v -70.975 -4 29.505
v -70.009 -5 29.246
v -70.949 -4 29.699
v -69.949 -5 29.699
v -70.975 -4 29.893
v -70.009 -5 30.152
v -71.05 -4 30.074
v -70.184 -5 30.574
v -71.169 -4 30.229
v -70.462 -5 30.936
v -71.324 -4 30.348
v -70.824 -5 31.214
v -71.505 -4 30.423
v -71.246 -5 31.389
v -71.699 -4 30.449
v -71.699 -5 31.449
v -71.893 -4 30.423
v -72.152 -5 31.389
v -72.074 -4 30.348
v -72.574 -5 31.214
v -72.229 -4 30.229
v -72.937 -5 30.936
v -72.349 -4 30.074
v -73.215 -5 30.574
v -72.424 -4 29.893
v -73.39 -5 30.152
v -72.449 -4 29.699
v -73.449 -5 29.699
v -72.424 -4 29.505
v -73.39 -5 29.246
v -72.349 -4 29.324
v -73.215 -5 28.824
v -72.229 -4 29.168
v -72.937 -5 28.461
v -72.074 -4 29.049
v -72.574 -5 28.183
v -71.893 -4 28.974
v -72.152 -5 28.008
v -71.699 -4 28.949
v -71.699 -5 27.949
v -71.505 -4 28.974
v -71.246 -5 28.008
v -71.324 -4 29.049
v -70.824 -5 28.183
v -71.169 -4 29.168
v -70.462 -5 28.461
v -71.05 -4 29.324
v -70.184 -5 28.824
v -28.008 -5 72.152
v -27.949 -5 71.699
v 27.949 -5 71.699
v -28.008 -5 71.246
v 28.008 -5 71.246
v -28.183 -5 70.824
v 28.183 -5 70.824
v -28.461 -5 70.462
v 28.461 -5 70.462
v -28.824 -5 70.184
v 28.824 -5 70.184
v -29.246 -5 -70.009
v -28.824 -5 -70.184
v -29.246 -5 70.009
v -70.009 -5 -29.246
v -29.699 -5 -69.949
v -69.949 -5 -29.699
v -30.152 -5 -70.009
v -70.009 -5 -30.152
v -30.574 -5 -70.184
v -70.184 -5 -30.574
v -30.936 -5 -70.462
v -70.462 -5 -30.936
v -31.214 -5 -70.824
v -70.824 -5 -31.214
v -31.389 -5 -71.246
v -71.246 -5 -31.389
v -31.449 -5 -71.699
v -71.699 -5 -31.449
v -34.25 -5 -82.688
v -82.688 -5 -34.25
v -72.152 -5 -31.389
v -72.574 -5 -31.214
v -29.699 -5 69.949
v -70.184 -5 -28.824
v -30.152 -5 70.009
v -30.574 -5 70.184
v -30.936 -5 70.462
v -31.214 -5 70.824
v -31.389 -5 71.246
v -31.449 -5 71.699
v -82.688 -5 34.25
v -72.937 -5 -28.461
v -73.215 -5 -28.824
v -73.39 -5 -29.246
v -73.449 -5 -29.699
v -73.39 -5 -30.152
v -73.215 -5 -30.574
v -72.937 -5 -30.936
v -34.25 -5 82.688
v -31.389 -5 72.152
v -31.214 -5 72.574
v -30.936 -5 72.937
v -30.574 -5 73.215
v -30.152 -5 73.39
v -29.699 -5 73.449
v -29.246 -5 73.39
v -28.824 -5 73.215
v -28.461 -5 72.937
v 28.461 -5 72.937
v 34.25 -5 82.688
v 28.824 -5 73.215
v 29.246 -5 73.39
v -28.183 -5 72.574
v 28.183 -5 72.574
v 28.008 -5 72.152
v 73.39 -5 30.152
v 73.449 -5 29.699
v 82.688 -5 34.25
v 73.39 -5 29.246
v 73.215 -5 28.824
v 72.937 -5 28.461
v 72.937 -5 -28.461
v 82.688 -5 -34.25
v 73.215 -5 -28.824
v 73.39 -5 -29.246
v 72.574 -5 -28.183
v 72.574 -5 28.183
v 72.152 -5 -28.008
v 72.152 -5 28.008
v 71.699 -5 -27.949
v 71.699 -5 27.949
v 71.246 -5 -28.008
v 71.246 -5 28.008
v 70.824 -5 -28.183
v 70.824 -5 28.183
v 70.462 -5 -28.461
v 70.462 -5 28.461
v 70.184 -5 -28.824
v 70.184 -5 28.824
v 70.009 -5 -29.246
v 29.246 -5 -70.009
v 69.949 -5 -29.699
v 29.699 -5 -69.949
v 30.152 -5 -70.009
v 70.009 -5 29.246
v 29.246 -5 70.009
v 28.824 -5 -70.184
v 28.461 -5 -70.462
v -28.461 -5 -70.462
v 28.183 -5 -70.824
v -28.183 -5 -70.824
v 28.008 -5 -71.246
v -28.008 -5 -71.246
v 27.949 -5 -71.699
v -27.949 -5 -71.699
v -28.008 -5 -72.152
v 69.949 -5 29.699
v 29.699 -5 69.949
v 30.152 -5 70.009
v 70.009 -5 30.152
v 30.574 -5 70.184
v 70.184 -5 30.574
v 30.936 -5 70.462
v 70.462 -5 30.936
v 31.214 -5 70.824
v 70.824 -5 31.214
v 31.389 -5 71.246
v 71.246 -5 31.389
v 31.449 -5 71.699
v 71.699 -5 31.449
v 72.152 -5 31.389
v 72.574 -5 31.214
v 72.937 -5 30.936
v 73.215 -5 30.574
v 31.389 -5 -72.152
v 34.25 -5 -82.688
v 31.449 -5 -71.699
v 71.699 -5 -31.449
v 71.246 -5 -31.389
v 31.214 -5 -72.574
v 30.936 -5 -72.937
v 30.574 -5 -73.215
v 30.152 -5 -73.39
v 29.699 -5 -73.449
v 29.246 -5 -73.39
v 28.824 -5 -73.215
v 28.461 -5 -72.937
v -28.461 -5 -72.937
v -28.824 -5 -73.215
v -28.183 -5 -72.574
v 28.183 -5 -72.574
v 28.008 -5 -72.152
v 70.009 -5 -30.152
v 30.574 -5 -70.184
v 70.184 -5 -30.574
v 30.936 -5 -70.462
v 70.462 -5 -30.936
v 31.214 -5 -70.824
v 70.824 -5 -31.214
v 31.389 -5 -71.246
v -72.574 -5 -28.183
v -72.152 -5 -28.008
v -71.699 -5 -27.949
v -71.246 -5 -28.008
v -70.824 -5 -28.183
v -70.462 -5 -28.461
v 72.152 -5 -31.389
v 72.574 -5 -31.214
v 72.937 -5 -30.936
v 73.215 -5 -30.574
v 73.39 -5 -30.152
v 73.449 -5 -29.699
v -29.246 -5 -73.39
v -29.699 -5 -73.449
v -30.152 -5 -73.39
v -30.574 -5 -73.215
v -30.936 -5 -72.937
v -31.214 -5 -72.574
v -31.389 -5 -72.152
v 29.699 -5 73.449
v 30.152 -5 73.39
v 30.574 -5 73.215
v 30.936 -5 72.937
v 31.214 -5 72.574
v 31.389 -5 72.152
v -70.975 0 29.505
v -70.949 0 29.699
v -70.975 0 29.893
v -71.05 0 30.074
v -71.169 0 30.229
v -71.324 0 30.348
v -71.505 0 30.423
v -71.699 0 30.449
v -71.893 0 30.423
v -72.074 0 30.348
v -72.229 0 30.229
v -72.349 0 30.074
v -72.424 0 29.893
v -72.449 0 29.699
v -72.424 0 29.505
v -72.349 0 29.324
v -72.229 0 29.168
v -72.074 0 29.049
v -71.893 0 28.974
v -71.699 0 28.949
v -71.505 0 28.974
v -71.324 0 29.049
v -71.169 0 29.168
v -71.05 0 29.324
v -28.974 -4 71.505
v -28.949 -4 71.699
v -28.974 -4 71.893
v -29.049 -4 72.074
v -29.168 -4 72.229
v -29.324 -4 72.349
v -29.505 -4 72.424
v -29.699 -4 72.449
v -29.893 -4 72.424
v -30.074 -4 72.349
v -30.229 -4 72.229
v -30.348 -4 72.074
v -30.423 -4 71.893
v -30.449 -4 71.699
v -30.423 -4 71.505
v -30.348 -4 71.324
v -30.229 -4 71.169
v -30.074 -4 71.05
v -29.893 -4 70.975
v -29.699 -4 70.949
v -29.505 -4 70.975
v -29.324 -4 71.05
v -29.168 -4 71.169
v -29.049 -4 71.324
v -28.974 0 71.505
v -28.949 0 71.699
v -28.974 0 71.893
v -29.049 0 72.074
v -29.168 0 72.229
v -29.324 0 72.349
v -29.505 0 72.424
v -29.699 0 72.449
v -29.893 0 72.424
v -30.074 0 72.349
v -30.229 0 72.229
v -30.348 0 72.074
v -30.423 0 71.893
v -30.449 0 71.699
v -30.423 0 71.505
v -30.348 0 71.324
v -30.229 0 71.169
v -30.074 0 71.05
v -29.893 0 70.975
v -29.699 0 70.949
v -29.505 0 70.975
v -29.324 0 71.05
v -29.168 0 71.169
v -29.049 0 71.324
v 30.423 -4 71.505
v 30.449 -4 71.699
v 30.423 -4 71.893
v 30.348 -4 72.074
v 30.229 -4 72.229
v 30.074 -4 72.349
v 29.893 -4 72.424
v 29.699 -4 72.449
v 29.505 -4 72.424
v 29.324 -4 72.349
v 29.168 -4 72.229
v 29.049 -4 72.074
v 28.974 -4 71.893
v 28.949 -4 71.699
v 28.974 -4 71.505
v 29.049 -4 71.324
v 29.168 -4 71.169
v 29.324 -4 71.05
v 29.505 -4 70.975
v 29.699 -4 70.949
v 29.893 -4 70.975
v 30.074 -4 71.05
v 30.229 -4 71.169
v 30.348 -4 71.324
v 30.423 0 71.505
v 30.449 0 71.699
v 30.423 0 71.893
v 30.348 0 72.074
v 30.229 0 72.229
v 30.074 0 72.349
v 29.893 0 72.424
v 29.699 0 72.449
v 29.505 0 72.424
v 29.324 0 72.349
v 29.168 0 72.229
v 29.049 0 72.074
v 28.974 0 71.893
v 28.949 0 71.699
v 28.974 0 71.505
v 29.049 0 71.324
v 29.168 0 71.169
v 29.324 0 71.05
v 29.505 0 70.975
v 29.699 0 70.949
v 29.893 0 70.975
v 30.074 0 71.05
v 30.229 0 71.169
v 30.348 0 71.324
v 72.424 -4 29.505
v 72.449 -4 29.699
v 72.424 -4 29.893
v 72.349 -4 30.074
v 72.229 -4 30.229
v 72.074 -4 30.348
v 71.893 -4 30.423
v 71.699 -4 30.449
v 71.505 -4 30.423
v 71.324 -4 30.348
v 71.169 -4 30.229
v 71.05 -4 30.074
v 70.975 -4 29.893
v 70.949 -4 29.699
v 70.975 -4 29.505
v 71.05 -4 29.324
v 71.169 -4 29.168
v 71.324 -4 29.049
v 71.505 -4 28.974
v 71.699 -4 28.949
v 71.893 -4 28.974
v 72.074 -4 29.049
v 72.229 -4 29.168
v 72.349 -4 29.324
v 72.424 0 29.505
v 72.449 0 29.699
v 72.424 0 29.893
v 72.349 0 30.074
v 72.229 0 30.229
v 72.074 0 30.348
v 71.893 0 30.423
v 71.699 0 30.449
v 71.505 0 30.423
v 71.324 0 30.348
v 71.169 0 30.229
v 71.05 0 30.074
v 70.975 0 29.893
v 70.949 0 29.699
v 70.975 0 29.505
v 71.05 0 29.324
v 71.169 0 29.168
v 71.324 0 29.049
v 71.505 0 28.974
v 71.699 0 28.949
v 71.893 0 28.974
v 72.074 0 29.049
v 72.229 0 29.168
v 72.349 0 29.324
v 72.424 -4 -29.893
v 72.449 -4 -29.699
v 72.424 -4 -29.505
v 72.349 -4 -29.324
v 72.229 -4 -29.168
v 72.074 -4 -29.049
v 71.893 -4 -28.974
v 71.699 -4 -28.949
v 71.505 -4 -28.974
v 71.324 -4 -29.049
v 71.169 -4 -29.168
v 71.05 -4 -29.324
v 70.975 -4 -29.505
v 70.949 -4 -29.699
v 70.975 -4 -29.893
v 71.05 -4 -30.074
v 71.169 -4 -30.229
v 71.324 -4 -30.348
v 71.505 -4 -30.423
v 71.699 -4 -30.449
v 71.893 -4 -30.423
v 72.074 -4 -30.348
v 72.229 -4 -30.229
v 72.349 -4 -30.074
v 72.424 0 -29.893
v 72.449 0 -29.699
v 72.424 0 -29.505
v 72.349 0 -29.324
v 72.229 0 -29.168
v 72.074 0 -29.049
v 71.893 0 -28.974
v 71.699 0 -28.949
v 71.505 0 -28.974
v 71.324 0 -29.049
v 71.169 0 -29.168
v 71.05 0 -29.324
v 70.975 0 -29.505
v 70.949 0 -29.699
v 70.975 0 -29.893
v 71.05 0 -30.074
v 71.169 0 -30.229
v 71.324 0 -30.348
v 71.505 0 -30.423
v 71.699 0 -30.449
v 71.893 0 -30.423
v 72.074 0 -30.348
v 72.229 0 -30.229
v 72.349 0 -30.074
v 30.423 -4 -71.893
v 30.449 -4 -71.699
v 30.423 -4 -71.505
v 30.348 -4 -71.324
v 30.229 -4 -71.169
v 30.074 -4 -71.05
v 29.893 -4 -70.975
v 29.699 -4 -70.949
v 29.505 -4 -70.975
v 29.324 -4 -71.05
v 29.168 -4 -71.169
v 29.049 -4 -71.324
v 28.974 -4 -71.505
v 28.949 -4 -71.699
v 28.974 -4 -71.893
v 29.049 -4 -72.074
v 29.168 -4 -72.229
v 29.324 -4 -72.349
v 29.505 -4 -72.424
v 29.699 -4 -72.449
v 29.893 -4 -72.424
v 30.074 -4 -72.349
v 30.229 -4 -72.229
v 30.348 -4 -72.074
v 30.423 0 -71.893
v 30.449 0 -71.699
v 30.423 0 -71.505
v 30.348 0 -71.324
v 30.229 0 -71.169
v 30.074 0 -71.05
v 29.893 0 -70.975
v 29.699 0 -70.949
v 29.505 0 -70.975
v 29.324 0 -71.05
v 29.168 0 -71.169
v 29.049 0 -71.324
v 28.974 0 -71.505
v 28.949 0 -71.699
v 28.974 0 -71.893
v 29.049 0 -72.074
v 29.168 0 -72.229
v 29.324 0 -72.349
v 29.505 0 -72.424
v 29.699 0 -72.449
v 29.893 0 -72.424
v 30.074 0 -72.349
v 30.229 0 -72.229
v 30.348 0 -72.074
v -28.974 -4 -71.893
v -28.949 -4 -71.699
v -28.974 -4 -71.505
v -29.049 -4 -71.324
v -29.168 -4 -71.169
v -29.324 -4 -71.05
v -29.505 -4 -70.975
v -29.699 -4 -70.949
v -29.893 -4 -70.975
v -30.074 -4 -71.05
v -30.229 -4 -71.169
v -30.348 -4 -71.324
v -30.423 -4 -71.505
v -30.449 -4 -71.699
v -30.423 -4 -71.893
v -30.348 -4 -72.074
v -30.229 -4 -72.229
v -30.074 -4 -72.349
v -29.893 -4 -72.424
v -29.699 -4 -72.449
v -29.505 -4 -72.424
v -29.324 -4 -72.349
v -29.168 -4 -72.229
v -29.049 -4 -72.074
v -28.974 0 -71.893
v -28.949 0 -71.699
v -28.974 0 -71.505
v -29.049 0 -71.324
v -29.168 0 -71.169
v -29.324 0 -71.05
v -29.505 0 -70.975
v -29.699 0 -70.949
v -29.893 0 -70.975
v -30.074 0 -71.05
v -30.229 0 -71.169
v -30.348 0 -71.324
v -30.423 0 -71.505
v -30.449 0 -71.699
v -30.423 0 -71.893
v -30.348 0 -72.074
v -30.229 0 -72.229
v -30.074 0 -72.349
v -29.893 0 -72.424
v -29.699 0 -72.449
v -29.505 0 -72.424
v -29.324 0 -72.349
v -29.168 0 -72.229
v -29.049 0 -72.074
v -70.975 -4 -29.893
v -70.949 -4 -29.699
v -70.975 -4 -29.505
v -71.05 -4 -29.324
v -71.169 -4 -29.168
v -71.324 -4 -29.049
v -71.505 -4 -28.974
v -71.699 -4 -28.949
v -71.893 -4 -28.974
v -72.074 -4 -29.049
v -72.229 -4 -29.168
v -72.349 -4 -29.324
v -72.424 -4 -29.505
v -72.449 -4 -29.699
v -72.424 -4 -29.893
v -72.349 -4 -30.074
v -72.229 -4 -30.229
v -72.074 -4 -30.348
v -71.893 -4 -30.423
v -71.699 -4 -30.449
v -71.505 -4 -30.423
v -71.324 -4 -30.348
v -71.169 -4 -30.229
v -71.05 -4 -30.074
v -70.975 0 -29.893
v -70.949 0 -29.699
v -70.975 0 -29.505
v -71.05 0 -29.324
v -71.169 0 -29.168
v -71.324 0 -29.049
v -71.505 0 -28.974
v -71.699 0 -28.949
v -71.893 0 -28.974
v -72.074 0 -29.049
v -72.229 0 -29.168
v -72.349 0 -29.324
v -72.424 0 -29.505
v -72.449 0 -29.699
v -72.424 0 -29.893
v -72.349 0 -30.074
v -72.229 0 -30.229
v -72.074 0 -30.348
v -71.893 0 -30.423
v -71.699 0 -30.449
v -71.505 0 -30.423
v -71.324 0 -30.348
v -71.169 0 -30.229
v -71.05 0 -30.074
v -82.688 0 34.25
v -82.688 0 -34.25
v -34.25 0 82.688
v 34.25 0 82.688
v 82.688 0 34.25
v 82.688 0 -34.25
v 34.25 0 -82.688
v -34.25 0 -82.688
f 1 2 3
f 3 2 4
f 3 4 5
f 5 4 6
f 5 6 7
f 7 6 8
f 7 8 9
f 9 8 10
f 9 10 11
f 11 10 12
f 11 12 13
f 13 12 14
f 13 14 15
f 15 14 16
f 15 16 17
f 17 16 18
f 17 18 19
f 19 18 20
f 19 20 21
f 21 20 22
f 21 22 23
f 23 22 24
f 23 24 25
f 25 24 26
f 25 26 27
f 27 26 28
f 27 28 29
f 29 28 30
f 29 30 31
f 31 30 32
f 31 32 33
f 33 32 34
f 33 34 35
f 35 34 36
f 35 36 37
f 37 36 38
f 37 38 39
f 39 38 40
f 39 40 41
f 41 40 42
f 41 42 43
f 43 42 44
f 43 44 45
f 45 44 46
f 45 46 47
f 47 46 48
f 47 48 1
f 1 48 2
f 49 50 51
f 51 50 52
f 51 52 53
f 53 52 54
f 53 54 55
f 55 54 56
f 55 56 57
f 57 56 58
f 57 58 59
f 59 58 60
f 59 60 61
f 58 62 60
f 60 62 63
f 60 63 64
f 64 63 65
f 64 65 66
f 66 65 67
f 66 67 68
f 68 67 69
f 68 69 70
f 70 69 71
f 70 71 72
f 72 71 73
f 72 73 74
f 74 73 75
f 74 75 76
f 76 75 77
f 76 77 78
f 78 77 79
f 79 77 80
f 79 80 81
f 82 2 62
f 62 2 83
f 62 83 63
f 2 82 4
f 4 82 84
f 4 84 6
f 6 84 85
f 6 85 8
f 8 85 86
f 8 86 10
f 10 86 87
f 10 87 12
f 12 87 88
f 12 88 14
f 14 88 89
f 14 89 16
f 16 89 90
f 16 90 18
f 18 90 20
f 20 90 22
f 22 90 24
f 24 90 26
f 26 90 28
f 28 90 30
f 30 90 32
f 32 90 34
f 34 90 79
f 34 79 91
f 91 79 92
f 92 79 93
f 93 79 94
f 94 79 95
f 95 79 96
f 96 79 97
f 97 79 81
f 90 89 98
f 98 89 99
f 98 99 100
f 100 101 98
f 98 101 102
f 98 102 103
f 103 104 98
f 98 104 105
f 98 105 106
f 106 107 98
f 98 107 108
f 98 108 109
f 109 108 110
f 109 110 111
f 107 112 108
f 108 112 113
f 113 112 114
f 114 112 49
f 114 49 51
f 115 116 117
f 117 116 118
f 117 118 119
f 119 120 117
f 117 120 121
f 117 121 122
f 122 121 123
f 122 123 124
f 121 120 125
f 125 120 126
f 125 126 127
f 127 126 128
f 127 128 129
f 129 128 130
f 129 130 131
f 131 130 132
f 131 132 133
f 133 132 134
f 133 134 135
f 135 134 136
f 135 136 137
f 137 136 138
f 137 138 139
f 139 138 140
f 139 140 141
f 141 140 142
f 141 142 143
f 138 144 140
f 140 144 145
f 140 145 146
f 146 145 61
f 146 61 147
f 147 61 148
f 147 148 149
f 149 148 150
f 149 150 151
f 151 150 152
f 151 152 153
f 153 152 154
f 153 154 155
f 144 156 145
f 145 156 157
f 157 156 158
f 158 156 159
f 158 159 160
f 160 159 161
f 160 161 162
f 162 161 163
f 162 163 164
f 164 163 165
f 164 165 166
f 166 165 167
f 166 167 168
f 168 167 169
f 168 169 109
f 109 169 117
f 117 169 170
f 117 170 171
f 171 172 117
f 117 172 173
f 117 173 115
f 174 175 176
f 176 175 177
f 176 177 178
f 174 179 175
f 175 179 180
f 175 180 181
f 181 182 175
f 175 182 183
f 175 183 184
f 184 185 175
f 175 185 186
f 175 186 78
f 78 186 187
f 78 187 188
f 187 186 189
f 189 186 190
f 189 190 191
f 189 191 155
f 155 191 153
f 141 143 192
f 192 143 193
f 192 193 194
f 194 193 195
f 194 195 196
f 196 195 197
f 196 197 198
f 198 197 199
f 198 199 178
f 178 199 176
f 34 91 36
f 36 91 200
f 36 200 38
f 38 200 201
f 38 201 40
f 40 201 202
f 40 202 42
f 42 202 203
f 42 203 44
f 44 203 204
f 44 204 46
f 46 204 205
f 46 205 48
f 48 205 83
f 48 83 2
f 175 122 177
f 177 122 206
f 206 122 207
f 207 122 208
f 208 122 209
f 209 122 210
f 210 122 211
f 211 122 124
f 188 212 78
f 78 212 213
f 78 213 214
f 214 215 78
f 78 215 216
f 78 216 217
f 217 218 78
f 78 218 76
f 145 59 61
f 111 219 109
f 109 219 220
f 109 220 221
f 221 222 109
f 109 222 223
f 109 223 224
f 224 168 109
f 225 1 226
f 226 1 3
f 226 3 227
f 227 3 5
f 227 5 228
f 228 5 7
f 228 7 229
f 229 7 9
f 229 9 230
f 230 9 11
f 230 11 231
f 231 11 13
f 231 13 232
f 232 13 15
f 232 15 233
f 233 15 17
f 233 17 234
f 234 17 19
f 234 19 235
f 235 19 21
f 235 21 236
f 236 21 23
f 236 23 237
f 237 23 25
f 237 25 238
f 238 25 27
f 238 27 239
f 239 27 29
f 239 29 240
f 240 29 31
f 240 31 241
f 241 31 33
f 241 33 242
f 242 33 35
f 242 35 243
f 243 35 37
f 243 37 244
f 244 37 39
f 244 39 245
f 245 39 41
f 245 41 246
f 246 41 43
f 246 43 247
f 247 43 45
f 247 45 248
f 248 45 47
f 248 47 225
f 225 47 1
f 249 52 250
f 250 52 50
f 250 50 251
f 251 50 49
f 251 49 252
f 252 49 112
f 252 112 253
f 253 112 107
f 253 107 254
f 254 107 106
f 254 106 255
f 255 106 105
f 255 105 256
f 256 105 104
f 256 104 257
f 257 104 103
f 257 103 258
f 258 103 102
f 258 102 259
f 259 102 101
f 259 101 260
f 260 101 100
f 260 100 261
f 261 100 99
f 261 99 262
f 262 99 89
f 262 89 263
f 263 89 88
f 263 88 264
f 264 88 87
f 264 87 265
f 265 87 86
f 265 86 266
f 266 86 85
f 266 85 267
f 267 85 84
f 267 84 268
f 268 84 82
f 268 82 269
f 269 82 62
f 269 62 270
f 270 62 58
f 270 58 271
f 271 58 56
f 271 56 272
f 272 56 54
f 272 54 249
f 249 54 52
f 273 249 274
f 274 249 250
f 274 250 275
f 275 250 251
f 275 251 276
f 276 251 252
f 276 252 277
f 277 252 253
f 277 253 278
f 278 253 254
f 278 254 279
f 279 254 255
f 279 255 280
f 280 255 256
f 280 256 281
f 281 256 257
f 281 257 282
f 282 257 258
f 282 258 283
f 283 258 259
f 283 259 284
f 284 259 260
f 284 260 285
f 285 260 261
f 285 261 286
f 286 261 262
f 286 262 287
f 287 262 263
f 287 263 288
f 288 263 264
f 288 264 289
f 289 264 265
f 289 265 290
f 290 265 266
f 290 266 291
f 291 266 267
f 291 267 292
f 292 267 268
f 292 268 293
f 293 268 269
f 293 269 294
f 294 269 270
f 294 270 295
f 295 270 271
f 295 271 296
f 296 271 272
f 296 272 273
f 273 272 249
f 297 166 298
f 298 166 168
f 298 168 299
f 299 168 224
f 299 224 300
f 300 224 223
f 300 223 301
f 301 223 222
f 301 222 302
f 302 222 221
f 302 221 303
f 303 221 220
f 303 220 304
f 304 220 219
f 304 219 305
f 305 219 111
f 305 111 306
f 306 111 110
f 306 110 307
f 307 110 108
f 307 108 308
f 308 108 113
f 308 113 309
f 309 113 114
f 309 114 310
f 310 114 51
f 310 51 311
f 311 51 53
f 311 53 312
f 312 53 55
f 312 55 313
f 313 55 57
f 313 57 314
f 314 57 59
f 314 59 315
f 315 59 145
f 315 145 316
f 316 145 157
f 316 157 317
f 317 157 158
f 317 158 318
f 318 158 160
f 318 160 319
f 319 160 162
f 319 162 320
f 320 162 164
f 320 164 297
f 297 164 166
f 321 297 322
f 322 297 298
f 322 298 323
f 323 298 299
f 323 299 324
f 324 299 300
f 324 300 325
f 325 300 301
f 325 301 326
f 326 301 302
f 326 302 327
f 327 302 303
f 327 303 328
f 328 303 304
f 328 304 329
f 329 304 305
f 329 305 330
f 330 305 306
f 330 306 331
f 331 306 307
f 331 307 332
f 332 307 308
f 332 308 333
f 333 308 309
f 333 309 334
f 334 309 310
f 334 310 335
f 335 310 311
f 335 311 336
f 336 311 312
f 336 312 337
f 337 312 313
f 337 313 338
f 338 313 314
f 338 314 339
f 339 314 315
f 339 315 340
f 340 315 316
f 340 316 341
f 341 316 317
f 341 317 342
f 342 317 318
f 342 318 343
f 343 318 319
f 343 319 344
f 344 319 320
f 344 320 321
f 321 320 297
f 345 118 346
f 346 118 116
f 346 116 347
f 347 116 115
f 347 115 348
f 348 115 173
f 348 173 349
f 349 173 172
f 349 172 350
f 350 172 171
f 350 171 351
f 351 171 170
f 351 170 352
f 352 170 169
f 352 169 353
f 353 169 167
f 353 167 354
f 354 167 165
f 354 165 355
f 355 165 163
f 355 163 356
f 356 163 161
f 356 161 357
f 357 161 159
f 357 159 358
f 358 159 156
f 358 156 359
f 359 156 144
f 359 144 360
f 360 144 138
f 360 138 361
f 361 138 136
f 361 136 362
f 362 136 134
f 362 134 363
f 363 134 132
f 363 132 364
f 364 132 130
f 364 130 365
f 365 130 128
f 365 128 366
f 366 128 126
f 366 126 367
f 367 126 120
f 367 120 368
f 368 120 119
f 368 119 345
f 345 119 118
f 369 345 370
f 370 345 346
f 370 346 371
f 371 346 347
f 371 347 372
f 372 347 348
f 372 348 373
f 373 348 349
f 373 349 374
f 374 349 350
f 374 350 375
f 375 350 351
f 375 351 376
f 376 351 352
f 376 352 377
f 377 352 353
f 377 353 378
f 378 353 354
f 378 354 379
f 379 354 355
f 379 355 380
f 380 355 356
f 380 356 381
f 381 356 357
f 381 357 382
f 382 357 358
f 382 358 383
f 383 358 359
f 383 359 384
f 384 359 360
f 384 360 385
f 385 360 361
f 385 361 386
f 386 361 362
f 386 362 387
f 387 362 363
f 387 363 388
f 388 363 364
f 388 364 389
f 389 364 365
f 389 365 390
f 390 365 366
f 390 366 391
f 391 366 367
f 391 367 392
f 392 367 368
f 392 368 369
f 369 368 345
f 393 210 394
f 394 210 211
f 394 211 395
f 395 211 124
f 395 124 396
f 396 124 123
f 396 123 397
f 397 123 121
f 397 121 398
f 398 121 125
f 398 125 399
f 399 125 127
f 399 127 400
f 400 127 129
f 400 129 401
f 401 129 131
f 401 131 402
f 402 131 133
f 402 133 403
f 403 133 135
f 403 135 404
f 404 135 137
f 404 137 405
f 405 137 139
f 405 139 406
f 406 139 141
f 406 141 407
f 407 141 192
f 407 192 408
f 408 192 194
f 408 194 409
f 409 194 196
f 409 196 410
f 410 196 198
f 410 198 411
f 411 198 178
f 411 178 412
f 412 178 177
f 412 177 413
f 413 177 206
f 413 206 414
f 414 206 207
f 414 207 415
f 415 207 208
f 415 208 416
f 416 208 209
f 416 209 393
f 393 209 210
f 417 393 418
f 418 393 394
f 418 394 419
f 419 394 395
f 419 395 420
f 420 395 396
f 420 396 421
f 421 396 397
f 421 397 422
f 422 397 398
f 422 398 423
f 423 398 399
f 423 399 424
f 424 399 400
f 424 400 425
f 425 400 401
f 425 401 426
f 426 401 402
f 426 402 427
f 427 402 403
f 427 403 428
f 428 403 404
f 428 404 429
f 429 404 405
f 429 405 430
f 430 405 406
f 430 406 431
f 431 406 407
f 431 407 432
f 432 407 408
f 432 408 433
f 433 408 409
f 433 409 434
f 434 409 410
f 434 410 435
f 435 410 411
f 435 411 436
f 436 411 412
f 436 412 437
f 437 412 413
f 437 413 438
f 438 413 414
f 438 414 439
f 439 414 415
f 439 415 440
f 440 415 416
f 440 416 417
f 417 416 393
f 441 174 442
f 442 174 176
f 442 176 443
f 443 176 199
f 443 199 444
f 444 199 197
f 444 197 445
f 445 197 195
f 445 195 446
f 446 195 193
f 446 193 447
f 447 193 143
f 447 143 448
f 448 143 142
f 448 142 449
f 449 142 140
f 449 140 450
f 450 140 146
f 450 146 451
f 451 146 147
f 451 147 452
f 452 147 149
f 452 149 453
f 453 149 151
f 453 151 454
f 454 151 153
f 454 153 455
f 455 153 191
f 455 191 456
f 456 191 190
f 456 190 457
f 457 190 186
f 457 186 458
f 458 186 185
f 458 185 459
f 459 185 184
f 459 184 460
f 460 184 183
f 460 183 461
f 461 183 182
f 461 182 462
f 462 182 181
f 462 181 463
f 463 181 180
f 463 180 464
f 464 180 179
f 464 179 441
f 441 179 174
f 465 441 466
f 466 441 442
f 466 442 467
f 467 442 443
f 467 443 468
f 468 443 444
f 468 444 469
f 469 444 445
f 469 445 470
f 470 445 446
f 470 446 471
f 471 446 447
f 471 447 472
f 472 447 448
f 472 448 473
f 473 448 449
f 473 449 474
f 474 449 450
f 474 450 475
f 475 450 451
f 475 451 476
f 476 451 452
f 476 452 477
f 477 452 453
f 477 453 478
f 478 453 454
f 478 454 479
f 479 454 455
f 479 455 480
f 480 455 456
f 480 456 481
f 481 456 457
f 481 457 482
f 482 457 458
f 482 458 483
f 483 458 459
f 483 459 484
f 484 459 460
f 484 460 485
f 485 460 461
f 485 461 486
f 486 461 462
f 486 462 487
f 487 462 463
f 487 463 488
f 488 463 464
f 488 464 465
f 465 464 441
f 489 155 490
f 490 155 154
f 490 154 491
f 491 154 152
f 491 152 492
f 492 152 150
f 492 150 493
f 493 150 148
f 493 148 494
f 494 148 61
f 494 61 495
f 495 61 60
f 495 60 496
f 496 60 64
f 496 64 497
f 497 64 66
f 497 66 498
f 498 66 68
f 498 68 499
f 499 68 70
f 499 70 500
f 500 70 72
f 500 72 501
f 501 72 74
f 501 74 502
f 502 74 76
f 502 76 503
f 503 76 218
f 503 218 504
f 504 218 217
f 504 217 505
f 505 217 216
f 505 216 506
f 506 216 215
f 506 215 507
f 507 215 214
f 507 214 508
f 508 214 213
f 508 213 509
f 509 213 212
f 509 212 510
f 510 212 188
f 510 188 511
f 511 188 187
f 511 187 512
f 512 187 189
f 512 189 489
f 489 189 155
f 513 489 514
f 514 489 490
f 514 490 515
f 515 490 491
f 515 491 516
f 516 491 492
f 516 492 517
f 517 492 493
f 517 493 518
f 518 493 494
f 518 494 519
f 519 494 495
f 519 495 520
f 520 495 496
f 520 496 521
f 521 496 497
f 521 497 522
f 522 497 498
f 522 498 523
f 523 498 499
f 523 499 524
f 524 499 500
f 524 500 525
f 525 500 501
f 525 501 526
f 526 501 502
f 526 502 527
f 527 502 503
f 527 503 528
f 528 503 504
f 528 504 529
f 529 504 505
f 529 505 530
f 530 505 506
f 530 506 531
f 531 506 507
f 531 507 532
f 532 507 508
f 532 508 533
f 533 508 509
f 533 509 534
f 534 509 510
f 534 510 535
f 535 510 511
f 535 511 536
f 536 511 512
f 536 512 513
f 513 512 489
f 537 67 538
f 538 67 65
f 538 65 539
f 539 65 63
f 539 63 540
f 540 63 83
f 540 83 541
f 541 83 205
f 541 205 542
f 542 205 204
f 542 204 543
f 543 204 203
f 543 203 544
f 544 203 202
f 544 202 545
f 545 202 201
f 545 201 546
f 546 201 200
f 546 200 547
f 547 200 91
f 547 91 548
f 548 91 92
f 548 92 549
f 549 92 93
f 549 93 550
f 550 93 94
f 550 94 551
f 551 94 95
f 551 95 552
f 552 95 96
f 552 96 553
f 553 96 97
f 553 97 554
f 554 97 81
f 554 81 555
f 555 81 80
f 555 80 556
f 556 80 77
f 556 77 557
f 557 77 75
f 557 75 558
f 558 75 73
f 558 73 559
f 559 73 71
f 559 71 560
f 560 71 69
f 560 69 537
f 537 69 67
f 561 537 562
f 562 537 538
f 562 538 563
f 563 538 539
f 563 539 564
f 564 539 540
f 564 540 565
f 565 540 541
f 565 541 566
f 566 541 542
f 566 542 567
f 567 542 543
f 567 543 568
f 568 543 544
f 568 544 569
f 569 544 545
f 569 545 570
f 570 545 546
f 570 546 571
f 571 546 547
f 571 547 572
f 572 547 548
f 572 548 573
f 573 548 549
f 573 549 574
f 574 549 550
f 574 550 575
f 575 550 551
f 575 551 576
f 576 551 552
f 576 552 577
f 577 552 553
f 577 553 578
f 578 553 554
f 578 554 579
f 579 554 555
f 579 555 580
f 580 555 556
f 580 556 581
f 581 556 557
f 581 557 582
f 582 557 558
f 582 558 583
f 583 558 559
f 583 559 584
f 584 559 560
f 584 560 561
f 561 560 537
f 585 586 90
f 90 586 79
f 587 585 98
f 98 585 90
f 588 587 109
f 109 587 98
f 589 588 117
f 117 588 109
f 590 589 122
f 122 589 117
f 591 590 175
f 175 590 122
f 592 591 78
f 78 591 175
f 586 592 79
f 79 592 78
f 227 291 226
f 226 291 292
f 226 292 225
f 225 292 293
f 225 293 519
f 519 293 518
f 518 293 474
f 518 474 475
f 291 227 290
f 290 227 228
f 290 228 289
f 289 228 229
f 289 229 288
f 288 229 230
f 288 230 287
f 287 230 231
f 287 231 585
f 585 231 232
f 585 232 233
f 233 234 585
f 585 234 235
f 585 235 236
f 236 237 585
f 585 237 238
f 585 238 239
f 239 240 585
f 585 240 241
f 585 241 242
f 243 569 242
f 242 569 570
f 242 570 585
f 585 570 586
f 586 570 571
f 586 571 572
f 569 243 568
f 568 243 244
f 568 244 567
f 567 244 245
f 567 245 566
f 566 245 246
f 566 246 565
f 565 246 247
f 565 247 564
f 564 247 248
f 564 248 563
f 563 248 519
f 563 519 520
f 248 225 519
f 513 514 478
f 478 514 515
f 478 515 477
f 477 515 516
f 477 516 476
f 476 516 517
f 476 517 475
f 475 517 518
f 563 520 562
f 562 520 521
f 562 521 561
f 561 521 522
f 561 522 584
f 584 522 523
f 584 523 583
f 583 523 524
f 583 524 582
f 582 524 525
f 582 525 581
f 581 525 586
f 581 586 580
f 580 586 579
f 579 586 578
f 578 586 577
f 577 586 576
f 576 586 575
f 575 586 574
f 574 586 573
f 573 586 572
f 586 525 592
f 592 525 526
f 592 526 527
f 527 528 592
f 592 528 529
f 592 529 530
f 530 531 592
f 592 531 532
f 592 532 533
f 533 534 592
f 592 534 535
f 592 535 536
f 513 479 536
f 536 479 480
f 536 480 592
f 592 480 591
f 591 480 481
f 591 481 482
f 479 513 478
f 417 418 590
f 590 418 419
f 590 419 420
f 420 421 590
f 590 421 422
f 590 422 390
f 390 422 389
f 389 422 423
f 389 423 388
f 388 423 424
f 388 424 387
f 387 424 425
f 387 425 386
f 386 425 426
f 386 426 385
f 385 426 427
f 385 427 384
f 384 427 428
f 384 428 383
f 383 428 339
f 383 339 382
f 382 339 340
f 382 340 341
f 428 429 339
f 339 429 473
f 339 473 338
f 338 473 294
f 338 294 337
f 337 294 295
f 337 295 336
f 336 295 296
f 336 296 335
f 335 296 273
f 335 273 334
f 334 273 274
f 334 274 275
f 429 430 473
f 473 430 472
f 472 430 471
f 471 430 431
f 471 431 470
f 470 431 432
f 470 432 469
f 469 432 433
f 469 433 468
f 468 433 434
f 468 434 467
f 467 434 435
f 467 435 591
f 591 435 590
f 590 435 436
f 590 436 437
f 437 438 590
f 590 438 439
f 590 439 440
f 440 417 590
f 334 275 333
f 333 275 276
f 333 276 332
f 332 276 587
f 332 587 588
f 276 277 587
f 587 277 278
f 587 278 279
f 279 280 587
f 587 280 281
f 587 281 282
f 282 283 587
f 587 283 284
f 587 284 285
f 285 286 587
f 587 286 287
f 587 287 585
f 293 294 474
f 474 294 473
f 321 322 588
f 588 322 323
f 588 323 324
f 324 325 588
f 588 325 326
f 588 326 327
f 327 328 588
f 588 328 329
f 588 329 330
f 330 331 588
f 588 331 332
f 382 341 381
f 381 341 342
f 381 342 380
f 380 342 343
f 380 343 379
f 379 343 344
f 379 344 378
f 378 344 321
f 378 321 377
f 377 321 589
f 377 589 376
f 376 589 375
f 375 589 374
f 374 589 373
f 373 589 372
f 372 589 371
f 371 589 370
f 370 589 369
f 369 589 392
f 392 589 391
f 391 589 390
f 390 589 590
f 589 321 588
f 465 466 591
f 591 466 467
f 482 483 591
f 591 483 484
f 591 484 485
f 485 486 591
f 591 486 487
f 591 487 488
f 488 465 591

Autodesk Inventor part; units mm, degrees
ref_plane "YZ Plane" through (0, 0, 0) normal (1, 0, 0) x (0, 1, 0)
ref_plane "XZ Plane" through (0, 0, 0) normal (0, 1, 0) x (-1, 0, 0)
ref_plane "XY Plane" through (0, 0, 0) normal (0, 0, 1) x (1, 0, 0)
ref_plane "Work Plane13" through (0, 0, 0) normal (0, -1, 0) x (1, 0, 0)
sketch "Sketch13" plane through (0, 0, 0) normal (0, -1, 0) x (1, 0, 0)
  circle A0 centre (-71.6992, -29.6988) radius 0.75 projected
  circle A1 centre (29.6988, -71.6992) radius 0.75 projected
  circle A2 centre (71.6992, 29.6988) radius 0.75 projected
  circle A3 centre (29.6988, 71.6992) radius 0.75 projected
  circle A4 centre (-29.6988, 71.6992) radius 0.75 projected
  circle A5 centre (71.6992, -29.6988) radius 0.75 projected
  circle A6 centre (-29.6988, -71.6992) radius 0.75 projected
  circle A7 centre (-71.6992, 29.6988) radius 0.75 projected
  line L0 (-82.6875, -34.2503) -> (-34.2503, -82.6875) projected
  line L1 (-34.2503, -82.6875) -> (34.2503, -82.6875) projected
  line L2 (34.2503, -82.6875) -> (82.6875, -34.2503) projected
  line L3 (82.6875, -34.2503) -> (82.6875, 34.2503) projected
  line L4 (82.6875, 34.2503) -> (34.2503, 82.6875) projected
  line L5 (34.2503, 82.6875) -> (-34.2503, 82.6875) projected
  line L6 (-34.2503, 82.6875) -> (-82.6875, 34.2503) projected
  line L7 (-82.6875, 34.2503) -> (-82.6875, -34.2503) projected
  arc A8 (-33.3536, 70.0737) -> (-25.965, 73.1342) centre (-29.6988, 71.6992) ccw projected
  arc A9 (25.965, 73.1342) -> (-25.965, 73.1342) centre (0, 0) ccw projected
  arc A10 (25.965, 73.1342) -> (33.3536, 70.0737) centre (29.6988, 71.6992) ccw projected
  arc A11 (70.0737, 33.3536) -> (33.3536, 70.0737) centre (0, 0) ccw projected
  arc A12 (70.0737, 33.3536) -> (73.1342, 25.965) centre (71.6992, 29.6988) ccw projected
  arc A13 (73.1342, -25.965) -> (73.1342, 25.965) centre (0, 0) ccw projected
  arc A14 (73.1342, -25.965) -> (70.0737, -33.3536) centre (71.6992, -29.6988) ccw projected
  arc A15 (33.3536, -70.0737) -> (70.0737, -33.3536) centre (0, 0) ccw projected
  arc A16 (33.3536, -70.0737) -> (25.965, -73.1342) centre (29.6988, -71.6992) ccw projected
  arc A17 (-25.965, -73.1342) -> (25.965, -73.1342) centre (0, 0) ccw projected
  arc A18 (-25.965, -73.1342) -> (-33.3536, -70.0737) centre (-29.6988, -71.6992) ccw projected
  arc A19 (-70.0737, -33.3536) -> (-33.3536, -70.0737) centre (0, 0) ccw projected
  arc A20 (-70.0737, -33.3536) -> (-73.1342, -25.965) centre (-71.6992, -29.6988) ccw projected
  arc A21 (-73.1342, 25.965) -> (-73.1342, -25.965) centre (0, 0) ccw projected
  arc A22 (-73.1342, 25.965) -> (-70.0737, 33.3536) centre (-71.6992, 29.6988) ccw projected
  arc A23 (-33.3536, 70.0737) -> (-70.0737, 33.3536) centre (0, 0) ccw projected
extrude "Extrusion11" add sketch "Sketch13" along normal blind 5 contours L7 L6 L5 L4 L3 L2 L1 L0 | A8 A9 A10 A11 A12 A13 A14 A15 A16 A17 A18 A19 A20 A21 A22 A23
chamfer "Chamfer2" distance 1 angle 45 8 edges at (-72.4492, -5, -29.6988) (-30.4488, -5, -71.6992) (28.9488, -5, -71.6992) (70.9492, -5, -29.6988) (70.9492, -5, 29.6988) (28.9488, -5, 71.6992) (-30.4488, -5, 71.6992) (-72.4492, -5, 29.6988)
properties part number "meteostanica radiation shield spodny kryt"
